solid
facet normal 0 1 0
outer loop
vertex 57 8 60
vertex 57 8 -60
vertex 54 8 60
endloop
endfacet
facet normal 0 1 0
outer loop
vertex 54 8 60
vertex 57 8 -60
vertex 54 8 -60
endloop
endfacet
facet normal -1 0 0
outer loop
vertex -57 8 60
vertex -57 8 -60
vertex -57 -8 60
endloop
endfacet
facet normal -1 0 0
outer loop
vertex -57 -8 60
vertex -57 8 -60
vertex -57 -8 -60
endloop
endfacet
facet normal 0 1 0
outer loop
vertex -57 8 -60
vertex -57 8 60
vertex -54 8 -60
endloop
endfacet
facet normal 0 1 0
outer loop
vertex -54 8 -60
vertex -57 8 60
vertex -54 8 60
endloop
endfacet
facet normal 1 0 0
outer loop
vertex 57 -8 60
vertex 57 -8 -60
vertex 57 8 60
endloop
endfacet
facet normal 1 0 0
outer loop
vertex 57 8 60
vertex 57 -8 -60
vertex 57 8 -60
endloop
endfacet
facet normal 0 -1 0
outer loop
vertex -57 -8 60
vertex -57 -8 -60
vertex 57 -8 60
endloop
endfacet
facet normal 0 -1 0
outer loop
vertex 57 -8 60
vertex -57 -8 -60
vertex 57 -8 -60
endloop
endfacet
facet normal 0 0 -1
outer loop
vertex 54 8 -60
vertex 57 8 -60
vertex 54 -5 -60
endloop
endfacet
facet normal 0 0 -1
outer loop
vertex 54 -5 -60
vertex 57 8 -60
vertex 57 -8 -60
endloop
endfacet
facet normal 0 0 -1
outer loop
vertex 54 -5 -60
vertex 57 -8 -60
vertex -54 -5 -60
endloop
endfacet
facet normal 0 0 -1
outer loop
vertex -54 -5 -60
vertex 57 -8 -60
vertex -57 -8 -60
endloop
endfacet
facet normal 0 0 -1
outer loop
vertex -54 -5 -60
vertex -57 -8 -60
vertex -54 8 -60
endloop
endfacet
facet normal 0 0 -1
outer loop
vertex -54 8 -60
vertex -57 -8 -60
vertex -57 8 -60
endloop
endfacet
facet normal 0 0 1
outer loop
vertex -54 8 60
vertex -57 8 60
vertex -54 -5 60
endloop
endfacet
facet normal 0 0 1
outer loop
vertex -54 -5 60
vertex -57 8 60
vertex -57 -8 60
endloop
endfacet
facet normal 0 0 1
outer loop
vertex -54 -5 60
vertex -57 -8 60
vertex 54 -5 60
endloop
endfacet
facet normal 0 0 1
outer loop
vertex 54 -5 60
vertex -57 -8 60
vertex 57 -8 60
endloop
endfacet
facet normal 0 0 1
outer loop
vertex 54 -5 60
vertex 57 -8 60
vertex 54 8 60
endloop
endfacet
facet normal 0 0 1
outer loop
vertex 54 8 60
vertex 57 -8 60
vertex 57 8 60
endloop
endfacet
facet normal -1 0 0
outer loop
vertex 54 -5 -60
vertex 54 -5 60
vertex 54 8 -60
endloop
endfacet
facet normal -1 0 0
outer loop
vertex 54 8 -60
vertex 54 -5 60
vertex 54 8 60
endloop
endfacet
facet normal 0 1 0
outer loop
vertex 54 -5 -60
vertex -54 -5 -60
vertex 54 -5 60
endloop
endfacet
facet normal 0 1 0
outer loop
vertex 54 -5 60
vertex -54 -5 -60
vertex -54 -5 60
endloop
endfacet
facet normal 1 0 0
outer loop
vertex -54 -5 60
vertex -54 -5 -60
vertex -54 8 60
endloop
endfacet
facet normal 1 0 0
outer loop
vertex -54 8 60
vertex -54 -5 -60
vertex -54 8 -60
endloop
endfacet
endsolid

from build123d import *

# Parameters (mm, degrees)
BOSS_EXTRUDE1_DEPTH      = 60
BOSS_EXTRUDE1_DEPTH_BACK = 60
SKETCH1_W                = 114
SKETCH1_H                = 16
SKETCH2_W                = 108
SKETCH2_H                = 26
CUT_EXTRUDE1_DEPTH       = 134.090194981


with BuildPart() as part:
    # Sketch1 → Boss-Extrude1 (new, two sides: drawn at the far end of the back side and taken through both)
    with BuildSketch(Plane.XY.offset(-BOSS_EXTRUDE1_DEPTH_BACK)):
        Rectangle(SKETCH1_W, SKETCH1_H)
    extrude(amount=BOSS_EXTRUDE1_DEPTH + BOSS_EXTRUDE1_DEPTH_BACK)

    # Sketch2 → Cut-Extrude1 (cut, through all)
    with BuildSketch(Plane.XY.offset(60)):
        with Locations((0, 8)):
            Rectangle(SKETCH2_W, SKETCH2_H)
    extrude(amount=-CUT_EXTRUDE1_DEPTH, mode=Mode.SUBTRACT)


solid = part.part
